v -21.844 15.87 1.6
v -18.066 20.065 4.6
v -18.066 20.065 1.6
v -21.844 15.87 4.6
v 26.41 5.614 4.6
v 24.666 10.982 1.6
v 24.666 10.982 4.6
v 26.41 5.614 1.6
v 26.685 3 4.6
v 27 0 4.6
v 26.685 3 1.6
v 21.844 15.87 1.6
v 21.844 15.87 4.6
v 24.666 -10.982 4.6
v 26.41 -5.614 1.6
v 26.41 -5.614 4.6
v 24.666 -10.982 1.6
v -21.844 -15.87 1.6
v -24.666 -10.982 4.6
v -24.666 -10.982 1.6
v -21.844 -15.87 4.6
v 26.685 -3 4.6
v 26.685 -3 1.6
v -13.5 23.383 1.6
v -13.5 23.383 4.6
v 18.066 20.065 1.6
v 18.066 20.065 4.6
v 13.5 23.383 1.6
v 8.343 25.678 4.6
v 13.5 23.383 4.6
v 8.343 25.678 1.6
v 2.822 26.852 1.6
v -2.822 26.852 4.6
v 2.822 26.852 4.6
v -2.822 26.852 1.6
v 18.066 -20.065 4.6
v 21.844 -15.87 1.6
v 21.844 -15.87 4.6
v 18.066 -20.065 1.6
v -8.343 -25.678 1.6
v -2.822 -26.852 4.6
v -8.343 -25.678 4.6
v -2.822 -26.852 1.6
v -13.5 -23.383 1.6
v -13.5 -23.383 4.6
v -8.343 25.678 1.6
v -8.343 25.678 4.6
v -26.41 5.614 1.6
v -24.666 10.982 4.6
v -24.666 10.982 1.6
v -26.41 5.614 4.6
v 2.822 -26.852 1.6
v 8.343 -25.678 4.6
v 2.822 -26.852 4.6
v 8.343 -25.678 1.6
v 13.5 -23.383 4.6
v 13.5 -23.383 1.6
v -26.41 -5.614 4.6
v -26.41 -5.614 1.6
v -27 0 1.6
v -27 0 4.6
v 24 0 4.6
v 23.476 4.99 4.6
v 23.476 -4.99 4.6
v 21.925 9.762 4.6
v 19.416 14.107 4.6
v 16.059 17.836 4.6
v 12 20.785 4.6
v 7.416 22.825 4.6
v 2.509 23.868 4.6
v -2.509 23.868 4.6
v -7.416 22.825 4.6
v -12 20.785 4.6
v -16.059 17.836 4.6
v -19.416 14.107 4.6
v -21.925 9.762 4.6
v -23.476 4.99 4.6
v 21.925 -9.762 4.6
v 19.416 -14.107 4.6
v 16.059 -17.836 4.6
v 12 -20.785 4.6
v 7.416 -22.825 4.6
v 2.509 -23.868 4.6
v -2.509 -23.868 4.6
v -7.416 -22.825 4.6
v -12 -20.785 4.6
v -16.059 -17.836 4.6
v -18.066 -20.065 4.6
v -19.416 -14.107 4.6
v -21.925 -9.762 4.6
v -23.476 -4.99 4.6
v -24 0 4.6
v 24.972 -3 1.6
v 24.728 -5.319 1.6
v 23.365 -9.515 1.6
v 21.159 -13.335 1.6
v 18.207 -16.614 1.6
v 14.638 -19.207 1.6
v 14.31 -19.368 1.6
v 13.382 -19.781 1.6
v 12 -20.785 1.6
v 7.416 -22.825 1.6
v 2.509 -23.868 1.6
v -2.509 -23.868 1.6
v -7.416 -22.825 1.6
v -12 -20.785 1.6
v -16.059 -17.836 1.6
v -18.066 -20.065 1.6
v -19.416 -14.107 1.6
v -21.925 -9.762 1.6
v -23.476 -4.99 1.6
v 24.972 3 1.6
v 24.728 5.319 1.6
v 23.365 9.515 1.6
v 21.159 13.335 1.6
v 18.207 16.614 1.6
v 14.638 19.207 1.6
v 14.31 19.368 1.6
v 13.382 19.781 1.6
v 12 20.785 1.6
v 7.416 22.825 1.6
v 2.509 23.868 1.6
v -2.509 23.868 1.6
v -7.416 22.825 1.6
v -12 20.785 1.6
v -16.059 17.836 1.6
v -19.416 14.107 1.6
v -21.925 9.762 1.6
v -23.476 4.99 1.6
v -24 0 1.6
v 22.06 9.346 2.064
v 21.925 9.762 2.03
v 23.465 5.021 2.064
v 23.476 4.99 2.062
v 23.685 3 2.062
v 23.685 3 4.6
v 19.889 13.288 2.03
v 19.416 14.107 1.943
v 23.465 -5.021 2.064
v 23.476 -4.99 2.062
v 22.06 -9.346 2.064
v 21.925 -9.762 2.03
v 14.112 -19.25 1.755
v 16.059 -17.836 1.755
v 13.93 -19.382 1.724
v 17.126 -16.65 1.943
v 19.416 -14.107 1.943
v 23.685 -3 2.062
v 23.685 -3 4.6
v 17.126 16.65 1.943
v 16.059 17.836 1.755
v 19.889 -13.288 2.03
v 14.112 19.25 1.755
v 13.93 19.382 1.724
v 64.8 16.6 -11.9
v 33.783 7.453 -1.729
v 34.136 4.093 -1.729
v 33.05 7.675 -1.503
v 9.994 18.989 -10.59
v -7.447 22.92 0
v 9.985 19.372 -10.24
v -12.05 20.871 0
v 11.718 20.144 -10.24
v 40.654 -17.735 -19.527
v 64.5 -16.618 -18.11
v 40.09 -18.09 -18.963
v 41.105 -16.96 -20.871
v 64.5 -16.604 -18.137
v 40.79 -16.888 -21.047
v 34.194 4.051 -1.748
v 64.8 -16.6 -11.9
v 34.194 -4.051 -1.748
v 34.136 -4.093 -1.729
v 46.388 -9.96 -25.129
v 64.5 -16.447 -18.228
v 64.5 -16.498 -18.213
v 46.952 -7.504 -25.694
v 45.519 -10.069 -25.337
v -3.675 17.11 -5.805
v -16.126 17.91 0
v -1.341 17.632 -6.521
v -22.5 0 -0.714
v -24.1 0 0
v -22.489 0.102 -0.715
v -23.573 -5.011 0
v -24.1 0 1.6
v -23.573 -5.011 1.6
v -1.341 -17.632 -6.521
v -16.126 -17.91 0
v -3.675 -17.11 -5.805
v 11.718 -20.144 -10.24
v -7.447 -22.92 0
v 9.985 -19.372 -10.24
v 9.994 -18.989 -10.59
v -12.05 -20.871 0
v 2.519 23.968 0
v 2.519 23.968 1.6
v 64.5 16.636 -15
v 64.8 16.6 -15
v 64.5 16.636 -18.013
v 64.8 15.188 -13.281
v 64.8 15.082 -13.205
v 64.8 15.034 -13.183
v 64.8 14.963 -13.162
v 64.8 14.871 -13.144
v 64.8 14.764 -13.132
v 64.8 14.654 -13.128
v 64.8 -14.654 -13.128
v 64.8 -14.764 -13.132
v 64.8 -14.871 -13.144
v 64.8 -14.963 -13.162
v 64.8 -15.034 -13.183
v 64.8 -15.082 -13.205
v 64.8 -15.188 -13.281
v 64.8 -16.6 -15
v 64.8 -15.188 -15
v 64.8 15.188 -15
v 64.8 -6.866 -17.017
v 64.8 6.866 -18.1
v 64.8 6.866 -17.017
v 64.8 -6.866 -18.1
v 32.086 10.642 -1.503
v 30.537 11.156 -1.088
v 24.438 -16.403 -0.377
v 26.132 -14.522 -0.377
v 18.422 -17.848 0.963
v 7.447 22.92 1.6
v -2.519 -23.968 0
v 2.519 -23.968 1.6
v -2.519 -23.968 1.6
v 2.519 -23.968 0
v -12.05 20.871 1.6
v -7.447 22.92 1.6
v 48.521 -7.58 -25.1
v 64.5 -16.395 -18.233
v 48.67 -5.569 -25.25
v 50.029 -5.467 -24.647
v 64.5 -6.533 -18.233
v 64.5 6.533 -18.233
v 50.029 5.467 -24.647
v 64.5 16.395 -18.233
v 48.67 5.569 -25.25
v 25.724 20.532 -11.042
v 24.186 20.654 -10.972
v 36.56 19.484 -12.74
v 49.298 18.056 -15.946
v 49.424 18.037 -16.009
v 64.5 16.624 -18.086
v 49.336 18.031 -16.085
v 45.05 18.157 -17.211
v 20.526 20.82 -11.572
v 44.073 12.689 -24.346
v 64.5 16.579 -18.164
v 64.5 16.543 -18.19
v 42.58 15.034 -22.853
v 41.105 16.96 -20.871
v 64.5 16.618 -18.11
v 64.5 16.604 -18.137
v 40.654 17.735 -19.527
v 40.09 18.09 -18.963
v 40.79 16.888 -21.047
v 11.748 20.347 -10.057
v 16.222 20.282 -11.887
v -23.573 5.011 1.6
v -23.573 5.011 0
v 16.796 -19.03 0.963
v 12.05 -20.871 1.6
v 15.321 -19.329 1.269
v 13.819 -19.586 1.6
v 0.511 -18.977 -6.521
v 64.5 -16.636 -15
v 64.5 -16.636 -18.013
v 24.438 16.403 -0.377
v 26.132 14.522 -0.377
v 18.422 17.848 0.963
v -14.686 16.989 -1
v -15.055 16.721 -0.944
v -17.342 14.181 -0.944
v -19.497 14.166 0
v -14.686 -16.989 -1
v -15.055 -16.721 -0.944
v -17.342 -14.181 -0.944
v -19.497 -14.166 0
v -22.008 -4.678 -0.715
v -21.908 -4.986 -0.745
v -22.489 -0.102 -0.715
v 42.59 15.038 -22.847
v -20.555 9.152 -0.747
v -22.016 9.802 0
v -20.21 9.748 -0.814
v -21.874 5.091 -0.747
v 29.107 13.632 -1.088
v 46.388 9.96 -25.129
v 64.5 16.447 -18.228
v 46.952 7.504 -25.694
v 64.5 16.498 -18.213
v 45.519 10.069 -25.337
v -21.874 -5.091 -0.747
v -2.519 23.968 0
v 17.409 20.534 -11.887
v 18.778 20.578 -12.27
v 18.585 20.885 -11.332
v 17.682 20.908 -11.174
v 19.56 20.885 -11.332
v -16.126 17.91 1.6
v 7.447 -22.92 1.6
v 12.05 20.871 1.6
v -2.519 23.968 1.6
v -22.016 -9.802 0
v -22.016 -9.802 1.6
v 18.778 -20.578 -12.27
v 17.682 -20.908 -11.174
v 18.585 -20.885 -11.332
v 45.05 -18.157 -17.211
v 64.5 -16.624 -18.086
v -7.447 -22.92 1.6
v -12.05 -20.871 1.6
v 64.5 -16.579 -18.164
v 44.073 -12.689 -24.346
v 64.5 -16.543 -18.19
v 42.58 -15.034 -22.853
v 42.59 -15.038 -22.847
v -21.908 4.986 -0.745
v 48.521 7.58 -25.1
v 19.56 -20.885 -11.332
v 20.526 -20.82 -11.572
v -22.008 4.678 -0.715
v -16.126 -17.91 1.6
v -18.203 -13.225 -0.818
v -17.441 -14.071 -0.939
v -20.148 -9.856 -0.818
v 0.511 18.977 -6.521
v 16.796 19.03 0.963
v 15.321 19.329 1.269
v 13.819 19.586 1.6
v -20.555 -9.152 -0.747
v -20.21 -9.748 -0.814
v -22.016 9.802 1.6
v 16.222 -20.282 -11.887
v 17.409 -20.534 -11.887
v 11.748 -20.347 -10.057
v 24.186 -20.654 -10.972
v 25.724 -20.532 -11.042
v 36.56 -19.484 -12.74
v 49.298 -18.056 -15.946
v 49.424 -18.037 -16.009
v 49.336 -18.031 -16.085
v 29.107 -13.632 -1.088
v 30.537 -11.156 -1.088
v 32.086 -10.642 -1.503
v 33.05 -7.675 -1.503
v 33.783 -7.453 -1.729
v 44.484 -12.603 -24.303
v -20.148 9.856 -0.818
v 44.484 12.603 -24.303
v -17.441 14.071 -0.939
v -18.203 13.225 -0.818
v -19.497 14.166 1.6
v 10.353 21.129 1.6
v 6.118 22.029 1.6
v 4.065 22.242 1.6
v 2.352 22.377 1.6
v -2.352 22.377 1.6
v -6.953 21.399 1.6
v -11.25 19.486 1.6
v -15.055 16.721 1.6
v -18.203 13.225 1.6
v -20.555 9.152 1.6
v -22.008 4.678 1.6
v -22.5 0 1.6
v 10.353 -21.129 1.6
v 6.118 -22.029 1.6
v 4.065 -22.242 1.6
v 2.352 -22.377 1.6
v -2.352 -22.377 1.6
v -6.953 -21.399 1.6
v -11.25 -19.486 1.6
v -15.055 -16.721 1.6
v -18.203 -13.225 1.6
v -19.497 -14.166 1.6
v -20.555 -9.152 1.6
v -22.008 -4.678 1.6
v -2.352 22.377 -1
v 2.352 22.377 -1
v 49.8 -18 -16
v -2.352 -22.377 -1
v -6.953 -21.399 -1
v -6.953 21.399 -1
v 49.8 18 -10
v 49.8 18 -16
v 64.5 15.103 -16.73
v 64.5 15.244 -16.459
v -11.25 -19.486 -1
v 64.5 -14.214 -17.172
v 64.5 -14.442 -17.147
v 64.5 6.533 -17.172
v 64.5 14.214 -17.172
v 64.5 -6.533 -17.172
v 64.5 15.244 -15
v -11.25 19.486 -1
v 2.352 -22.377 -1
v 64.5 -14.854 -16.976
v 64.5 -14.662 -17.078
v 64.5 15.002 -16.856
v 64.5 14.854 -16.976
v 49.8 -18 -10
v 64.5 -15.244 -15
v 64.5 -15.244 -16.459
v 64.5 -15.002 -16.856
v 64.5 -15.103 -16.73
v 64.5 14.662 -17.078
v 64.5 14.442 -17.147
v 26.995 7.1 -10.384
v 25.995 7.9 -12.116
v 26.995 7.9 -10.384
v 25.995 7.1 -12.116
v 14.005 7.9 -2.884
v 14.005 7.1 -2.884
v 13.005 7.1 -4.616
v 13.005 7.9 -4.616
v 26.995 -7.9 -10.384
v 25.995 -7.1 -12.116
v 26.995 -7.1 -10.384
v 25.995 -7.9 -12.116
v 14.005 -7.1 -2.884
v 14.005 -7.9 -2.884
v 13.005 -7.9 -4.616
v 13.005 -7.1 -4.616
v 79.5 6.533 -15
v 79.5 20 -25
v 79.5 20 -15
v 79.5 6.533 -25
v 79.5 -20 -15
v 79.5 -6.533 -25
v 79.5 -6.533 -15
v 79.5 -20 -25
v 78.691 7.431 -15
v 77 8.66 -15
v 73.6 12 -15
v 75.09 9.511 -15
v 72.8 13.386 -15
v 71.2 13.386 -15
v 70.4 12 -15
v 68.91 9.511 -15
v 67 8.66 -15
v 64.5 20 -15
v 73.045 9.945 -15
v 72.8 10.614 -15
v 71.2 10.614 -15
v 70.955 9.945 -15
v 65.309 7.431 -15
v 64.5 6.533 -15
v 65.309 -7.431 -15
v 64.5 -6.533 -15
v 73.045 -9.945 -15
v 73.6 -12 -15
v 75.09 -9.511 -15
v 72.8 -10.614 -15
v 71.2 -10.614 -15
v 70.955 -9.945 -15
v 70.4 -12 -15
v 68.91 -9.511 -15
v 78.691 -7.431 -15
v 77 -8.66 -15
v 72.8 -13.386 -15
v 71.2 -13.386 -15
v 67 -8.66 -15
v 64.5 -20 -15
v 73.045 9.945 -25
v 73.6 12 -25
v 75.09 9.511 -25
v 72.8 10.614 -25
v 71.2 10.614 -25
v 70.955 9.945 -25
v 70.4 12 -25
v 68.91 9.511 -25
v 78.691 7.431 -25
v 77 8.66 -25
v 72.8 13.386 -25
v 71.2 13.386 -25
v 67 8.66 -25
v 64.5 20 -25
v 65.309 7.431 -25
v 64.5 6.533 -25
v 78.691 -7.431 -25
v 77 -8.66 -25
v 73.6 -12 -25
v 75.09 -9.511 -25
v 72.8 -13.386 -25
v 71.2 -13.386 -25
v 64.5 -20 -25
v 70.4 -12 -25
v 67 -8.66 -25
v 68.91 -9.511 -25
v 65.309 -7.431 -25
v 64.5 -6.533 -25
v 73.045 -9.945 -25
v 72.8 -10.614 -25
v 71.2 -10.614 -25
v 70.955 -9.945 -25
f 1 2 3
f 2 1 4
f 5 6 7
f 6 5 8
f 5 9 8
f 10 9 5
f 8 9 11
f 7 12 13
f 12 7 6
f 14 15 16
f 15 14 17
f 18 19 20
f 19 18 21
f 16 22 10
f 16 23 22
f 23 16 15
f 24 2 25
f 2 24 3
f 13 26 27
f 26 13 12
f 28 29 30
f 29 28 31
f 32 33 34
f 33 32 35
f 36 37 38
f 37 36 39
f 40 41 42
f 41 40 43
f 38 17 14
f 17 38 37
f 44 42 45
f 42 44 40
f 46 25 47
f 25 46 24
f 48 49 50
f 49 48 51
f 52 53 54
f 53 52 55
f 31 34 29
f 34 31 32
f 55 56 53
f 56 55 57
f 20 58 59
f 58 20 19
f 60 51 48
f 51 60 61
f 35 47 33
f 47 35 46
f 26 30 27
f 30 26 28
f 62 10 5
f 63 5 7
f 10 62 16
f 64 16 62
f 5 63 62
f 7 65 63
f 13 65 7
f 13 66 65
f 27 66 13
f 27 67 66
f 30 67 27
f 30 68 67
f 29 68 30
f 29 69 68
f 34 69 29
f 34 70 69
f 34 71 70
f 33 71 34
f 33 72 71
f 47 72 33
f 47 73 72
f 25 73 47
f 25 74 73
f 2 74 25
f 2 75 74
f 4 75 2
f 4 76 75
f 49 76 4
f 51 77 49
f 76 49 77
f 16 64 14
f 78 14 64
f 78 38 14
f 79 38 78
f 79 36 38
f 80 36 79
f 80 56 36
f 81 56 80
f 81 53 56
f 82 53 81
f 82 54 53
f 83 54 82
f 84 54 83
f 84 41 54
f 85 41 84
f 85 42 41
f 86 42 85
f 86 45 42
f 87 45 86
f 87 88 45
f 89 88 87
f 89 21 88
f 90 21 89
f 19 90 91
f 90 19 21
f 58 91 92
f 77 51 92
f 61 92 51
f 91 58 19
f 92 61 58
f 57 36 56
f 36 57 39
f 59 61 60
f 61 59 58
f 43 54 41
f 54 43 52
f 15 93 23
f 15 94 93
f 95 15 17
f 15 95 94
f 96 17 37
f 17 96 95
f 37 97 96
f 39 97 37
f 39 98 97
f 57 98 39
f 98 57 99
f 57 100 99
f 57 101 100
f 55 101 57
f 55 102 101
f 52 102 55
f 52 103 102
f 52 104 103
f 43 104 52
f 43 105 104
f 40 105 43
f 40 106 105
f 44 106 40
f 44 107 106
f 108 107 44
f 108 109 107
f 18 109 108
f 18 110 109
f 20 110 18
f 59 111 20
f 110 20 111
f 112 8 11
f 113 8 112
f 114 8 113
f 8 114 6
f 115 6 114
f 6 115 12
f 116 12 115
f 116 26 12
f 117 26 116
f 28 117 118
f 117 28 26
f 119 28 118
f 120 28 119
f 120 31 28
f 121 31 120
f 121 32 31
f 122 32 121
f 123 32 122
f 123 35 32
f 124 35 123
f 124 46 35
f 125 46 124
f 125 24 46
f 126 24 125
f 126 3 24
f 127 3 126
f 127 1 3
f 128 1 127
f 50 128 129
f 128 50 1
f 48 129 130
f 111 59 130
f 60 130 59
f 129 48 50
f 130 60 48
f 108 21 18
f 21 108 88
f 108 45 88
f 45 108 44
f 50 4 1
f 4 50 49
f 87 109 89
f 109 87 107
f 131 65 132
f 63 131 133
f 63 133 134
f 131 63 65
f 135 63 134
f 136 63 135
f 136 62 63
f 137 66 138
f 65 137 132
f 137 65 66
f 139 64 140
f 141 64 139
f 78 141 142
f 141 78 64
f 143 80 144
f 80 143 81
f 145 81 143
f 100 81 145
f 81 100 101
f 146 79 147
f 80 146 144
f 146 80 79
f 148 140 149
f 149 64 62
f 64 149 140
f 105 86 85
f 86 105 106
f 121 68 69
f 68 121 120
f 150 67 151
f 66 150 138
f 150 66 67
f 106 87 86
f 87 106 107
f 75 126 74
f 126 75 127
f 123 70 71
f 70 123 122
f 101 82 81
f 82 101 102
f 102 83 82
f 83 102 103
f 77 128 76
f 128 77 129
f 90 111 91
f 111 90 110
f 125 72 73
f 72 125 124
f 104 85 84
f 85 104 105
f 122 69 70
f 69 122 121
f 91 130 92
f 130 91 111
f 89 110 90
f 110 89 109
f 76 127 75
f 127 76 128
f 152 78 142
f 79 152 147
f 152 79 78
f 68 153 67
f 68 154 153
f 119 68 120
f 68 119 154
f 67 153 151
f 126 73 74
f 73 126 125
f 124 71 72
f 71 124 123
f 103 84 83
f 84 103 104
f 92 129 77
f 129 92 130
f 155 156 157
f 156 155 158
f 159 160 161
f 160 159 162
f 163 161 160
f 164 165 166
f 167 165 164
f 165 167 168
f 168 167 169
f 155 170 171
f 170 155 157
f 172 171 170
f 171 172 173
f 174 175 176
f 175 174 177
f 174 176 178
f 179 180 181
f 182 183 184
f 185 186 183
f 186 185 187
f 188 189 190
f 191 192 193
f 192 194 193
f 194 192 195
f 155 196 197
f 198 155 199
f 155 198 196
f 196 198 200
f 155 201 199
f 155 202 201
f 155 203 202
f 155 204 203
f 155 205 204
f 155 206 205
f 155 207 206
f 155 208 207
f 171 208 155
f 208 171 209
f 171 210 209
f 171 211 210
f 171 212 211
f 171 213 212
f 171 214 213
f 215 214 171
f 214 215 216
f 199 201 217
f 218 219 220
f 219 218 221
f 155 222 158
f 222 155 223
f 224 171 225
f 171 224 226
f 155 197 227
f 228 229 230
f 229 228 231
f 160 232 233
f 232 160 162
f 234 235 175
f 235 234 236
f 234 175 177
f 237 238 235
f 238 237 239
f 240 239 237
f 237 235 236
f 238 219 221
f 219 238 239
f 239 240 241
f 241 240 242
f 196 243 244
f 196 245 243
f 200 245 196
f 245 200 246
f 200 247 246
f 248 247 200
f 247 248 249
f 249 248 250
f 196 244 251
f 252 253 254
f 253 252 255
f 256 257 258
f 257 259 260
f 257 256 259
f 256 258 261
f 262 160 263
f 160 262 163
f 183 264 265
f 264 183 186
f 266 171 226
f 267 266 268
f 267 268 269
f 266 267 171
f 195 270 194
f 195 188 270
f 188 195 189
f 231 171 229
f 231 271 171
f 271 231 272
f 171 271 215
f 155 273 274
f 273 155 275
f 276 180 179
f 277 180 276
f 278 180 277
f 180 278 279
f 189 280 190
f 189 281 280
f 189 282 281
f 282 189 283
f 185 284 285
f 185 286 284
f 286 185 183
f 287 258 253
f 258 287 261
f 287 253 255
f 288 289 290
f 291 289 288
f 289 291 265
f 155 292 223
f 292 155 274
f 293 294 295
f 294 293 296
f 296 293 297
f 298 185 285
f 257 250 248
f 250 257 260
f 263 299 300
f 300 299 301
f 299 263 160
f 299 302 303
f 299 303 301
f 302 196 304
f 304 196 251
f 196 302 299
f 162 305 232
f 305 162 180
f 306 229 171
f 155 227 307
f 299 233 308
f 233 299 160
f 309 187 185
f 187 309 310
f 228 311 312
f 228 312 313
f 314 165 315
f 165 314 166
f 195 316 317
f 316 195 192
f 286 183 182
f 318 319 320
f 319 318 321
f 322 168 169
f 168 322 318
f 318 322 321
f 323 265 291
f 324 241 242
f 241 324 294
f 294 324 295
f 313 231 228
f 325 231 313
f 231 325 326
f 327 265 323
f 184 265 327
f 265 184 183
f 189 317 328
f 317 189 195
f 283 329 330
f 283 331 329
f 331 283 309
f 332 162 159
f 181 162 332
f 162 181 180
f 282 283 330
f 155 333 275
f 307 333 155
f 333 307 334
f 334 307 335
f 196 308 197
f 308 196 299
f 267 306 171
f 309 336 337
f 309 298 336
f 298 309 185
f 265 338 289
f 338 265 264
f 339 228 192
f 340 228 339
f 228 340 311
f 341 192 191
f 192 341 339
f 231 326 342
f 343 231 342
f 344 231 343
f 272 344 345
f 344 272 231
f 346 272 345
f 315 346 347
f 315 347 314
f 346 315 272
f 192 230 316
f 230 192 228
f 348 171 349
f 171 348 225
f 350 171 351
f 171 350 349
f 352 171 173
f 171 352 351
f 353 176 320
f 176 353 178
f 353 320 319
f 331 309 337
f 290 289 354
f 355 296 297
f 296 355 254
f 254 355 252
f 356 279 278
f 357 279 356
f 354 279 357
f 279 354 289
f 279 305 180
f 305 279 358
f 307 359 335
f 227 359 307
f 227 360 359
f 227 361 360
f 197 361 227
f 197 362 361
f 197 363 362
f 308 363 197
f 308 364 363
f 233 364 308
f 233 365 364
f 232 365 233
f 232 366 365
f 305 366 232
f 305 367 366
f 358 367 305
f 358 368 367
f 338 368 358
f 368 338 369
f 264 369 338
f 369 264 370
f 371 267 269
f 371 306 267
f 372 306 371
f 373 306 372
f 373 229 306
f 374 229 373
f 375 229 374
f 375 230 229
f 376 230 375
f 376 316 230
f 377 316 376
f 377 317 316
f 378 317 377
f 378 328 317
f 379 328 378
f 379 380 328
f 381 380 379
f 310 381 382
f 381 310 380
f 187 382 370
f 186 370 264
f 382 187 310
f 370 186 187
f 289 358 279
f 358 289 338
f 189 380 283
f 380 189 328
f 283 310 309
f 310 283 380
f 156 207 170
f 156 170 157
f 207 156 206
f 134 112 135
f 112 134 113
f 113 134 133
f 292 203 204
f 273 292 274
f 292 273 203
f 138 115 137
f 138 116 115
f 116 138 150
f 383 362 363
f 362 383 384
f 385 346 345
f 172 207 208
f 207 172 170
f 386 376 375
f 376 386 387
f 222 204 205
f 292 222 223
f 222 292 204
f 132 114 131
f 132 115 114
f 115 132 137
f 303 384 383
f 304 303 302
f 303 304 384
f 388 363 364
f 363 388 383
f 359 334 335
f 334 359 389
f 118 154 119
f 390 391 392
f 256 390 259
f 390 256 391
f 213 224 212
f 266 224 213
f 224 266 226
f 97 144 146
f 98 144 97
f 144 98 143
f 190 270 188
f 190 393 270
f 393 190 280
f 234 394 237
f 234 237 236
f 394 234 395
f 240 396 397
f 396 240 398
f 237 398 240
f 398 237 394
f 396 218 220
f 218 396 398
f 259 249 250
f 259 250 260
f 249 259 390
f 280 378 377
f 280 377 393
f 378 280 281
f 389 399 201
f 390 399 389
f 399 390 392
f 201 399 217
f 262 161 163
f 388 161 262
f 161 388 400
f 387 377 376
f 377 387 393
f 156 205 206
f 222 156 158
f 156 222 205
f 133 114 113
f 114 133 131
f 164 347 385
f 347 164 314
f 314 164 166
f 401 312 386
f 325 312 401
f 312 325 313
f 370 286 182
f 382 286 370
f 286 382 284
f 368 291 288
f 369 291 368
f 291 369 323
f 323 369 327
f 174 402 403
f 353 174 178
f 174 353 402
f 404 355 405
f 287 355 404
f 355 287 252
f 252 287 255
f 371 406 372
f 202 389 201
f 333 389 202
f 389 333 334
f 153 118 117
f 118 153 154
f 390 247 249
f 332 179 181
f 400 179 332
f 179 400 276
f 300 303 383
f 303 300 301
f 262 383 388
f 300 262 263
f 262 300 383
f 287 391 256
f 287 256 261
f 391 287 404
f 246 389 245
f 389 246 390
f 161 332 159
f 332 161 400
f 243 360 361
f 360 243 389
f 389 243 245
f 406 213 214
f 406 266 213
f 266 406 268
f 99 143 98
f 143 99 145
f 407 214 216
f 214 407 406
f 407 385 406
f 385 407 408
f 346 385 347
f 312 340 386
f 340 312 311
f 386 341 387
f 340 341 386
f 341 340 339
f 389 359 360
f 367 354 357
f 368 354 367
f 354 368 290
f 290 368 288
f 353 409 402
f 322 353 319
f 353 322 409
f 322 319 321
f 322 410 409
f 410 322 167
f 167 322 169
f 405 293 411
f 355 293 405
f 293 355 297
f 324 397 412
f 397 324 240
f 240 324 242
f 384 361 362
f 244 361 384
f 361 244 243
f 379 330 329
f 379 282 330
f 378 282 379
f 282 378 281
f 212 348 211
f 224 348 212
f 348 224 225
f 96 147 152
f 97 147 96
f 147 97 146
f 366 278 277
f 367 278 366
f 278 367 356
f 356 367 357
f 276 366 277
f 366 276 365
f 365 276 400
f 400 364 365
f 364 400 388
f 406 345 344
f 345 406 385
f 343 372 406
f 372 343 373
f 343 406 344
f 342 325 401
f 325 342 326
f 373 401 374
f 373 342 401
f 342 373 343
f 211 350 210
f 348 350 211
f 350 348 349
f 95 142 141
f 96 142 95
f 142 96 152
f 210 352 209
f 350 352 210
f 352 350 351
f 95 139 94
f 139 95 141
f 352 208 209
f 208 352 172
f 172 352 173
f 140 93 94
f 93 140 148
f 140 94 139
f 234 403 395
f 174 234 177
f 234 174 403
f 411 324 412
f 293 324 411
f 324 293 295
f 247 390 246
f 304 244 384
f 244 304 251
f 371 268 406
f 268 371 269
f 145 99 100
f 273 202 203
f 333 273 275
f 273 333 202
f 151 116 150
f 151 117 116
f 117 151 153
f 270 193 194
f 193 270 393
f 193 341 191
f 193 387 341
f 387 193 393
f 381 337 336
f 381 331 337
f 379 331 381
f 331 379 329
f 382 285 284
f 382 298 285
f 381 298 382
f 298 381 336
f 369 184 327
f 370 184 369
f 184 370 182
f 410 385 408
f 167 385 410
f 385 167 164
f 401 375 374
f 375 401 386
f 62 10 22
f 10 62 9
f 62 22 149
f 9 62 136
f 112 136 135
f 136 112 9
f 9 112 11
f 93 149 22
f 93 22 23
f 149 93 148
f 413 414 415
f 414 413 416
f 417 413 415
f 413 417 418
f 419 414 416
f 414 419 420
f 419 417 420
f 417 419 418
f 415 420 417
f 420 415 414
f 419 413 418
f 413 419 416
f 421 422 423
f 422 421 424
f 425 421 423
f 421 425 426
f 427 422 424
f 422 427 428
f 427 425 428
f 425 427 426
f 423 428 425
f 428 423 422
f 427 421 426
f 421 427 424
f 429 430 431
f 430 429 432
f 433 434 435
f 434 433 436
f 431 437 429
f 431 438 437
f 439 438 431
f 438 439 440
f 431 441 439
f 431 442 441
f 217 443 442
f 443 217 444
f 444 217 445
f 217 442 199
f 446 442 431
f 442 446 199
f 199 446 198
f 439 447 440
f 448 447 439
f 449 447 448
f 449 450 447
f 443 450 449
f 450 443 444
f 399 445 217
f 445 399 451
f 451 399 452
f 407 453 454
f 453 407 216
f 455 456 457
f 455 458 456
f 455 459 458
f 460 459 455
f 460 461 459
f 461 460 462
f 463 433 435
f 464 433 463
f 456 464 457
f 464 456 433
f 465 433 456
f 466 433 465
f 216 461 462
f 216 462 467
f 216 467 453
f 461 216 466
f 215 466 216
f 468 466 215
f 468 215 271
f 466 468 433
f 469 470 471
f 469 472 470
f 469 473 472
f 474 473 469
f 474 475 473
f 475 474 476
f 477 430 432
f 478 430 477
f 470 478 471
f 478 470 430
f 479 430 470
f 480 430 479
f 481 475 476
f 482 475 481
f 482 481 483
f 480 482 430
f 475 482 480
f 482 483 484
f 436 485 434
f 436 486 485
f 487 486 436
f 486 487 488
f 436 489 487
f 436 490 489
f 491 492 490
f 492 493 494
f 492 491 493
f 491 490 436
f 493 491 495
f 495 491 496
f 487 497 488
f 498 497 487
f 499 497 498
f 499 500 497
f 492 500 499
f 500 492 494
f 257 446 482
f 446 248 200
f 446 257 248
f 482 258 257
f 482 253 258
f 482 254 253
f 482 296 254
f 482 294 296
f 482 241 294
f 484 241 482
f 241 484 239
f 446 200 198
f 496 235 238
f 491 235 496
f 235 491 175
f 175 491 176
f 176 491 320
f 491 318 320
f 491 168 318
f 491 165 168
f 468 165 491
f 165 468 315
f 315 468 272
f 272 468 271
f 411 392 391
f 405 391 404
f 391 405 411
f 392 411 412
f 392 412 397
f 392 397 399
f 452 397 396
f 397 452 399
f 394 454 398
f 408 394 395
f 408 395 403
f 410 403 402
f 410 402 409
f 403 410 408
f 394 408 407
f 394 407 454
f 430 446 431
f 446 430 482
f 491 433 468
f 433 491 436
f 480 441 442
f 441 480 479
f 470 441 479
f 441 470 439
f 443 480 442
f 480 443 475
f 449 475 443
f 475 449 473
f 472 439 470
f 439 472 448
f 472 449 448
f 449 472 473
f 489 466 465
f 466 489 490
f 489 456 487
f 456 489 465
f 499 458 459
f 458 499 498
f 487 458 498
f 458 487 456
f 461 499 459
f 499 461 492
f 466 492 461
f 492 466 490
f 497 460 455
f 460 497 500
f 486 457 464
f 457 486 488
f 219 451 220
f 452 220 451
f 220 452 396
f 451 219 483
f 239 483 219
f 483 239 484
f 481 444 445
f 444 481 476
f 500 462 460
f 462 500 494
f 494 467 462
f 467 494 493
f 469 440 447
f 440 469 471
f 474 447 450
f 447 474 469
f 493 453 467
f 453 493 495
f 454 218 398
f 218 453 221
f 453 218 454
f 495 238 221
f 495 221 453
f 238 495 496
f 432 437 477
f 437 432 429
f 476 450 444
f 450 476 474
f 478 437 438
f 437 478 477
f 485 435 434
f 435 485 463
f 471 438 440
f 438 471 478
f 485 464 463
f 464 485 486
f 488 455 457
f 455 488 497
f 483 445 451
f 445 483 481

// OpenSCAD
// 5015 Radial Fan Part Cooling Duct
// CFD-optimized design for maximum part cooling efficiency
// Compatible with popular 3D printer extruders

// Fan specifications
fan_size = 50;              // 5015 fan outer dimension
fan_thickness = 15;         // Fan depth
fan_hole_spacing = 40;      // Mounting hole distance
fan_hole_diameter = 4.2;    // M4 screw holes

// Duct optimization parameters
inlet_diameter = 45;        // Optimized inlet for 5015 fan
duct_length = 80;           // Total duct length
nozzle_height = 15;         // Height above nozzle
outlet_width = 30;          // Width of cooling air outlet
outlet_height = 3;          // Height of outlet slot
wall_thickness = 1.6;       // Optimized wall thickness

// Aerodynamic parameters
curve_radius = 15;          // Smooth curve radius
taper_angle = 15;           // Gradual taper for smooth flow
diffuser_length = 25;       // Length of diffuser section

module 5015_cooling_duct() {
    difference() {
        union() {
            // Main duct body with smooth transitions
            hull() {
                // Fan connection - circular inlet
                translate([0, 0, 0])
                    cylinder(h = wall_thickness, d = inlet_diameter + 2*wall_thickness);
                
                // Transition point
                translate([duct_length/3, 0, -curve_radius])
                    rotate([0, 45, 0])
                        cylinder(h = wall_thickness, d = inlet_diameter*0.8 + 2*wall_thickness);
                
                // Nozzle area - rectangular outlet
                translate([duct_length*0.8, 0, -nozzle_height])
                    cube([wall_thickness, outlet_width + 2*wall_thickness, outlet_height + 2*wall_thickness], center = true);
            }
            
            // Fan mounting flange
            translate([0, 0, wall_thickness])
                difference() {
                    cylinder(h = 3, d = fan_size + 4);
                    cylinder(h = 4, d = fan_size - 2);
                }
        }
        
        // Internal airflow channel with optimized geometry
        hull() {
            // Fan inlet - matches 5015 outlet
            translate([0, 0, -1])
                cylinder(h = wall_thickness + 2, d = inlet_diameter);
            
            // Smooth transition with expansion
            translate([duct_length/3, 0, -curve_radius])
                rotate([0, 45, 0])
                    cylinder(h = wall_thickness + 2, d = inlet_diameter*0.9);
            
            // Converging section for velocity increase
            translate([duct_length*0.6, 0, -nozzle_height + 2])
                cube([wall_thickness + 2, outlet_width*1.2, outlet_height*2], center = true);
            
            // Final outlet - optimized for part cooling
            translate([duct_length*0.8, 0, -nozzle_height])
                cube([wall_thickness + 2, outlet_width, outlet_height], center = true);
        }
        
        // Fan mounting holes
        for (i = [0:3]) {
            rotate([0, 0, i*90 + 45])
                translate([fan_hole_spacing/2, 0, -1])
                    cylinder(h = 10, d = fan_hole_diameter);
        }
        
        // Central fan hub clearance
        translate([0, 0, -1])
            cylinder(h = wall_thickness + 4, d = 20);
        
        // Wire management cutout
        translate([fan_size/2 - 2, -3, 0])
            cube([4, 6, wall_thickness + 3]);
    }
    
    // Internal flow guides for reduced turbulence
    translate([duct_length/4, 0, -curve_radius/2]) {
        // Upper flow guide
        translate([0, outlet_width/4, 0])
            rotate([0, 30, 0])
                cube([15, 0.8, 2], center = true);
        
        // Lower flow guide  
        translate([0, -outlet_width/4, 0])
            rotate([0, 30, 0])
                cube([15, 0.8, 2], center = true);
    }
}

// Modular mounting bracket for different extruders
module mounting_bracket() {
    difference() {
        // Main bracket body
        translate([duct_length*0.9, 0, -nozzle_height - 5])
            cube([15, 40, 10], center = true);
        
        // Mounting holes for extruder
        translate([duct_length*0.9, 12, -nozzle_height - 5])
            cylinder(h = 12, d = 3.2, center = true);
        translate([duct_length*0.9, -12, -nozzle_height - 5])
            cylinder(h = 12, d = 3.2, center = true);
        
        // Weight reduction
        translate([duct_length*0.9, 0, -nozzle_height - 5])
            cylinder(h = 12, d = 20, center = true);
    }
}

// Adjustable nozzle targeting system
module nozzle_targeting_ring() {
    translate([duct_length*0.8, 0, -nozzle_height]) {
        difference() {
            cylinder(h = 2, d = outlet_width + 8);
            cylinder(h = 3, d = outlet_width);
            
            // Adjustment slots
            for (i = [0:3]) {
                rotate([0, 0, i*90])
                    translate([outlet_width/2 + 2, 0, 0])
                        cube([3, 1, 3], center = true);
            }
        }
    }
}

// Generate the main duct
5015_cooling_duct();

// Add mounting bracket
mounting_bracket();

// Add targeting ring (comment out if not needed)
// nozzle_targeting_ring();
